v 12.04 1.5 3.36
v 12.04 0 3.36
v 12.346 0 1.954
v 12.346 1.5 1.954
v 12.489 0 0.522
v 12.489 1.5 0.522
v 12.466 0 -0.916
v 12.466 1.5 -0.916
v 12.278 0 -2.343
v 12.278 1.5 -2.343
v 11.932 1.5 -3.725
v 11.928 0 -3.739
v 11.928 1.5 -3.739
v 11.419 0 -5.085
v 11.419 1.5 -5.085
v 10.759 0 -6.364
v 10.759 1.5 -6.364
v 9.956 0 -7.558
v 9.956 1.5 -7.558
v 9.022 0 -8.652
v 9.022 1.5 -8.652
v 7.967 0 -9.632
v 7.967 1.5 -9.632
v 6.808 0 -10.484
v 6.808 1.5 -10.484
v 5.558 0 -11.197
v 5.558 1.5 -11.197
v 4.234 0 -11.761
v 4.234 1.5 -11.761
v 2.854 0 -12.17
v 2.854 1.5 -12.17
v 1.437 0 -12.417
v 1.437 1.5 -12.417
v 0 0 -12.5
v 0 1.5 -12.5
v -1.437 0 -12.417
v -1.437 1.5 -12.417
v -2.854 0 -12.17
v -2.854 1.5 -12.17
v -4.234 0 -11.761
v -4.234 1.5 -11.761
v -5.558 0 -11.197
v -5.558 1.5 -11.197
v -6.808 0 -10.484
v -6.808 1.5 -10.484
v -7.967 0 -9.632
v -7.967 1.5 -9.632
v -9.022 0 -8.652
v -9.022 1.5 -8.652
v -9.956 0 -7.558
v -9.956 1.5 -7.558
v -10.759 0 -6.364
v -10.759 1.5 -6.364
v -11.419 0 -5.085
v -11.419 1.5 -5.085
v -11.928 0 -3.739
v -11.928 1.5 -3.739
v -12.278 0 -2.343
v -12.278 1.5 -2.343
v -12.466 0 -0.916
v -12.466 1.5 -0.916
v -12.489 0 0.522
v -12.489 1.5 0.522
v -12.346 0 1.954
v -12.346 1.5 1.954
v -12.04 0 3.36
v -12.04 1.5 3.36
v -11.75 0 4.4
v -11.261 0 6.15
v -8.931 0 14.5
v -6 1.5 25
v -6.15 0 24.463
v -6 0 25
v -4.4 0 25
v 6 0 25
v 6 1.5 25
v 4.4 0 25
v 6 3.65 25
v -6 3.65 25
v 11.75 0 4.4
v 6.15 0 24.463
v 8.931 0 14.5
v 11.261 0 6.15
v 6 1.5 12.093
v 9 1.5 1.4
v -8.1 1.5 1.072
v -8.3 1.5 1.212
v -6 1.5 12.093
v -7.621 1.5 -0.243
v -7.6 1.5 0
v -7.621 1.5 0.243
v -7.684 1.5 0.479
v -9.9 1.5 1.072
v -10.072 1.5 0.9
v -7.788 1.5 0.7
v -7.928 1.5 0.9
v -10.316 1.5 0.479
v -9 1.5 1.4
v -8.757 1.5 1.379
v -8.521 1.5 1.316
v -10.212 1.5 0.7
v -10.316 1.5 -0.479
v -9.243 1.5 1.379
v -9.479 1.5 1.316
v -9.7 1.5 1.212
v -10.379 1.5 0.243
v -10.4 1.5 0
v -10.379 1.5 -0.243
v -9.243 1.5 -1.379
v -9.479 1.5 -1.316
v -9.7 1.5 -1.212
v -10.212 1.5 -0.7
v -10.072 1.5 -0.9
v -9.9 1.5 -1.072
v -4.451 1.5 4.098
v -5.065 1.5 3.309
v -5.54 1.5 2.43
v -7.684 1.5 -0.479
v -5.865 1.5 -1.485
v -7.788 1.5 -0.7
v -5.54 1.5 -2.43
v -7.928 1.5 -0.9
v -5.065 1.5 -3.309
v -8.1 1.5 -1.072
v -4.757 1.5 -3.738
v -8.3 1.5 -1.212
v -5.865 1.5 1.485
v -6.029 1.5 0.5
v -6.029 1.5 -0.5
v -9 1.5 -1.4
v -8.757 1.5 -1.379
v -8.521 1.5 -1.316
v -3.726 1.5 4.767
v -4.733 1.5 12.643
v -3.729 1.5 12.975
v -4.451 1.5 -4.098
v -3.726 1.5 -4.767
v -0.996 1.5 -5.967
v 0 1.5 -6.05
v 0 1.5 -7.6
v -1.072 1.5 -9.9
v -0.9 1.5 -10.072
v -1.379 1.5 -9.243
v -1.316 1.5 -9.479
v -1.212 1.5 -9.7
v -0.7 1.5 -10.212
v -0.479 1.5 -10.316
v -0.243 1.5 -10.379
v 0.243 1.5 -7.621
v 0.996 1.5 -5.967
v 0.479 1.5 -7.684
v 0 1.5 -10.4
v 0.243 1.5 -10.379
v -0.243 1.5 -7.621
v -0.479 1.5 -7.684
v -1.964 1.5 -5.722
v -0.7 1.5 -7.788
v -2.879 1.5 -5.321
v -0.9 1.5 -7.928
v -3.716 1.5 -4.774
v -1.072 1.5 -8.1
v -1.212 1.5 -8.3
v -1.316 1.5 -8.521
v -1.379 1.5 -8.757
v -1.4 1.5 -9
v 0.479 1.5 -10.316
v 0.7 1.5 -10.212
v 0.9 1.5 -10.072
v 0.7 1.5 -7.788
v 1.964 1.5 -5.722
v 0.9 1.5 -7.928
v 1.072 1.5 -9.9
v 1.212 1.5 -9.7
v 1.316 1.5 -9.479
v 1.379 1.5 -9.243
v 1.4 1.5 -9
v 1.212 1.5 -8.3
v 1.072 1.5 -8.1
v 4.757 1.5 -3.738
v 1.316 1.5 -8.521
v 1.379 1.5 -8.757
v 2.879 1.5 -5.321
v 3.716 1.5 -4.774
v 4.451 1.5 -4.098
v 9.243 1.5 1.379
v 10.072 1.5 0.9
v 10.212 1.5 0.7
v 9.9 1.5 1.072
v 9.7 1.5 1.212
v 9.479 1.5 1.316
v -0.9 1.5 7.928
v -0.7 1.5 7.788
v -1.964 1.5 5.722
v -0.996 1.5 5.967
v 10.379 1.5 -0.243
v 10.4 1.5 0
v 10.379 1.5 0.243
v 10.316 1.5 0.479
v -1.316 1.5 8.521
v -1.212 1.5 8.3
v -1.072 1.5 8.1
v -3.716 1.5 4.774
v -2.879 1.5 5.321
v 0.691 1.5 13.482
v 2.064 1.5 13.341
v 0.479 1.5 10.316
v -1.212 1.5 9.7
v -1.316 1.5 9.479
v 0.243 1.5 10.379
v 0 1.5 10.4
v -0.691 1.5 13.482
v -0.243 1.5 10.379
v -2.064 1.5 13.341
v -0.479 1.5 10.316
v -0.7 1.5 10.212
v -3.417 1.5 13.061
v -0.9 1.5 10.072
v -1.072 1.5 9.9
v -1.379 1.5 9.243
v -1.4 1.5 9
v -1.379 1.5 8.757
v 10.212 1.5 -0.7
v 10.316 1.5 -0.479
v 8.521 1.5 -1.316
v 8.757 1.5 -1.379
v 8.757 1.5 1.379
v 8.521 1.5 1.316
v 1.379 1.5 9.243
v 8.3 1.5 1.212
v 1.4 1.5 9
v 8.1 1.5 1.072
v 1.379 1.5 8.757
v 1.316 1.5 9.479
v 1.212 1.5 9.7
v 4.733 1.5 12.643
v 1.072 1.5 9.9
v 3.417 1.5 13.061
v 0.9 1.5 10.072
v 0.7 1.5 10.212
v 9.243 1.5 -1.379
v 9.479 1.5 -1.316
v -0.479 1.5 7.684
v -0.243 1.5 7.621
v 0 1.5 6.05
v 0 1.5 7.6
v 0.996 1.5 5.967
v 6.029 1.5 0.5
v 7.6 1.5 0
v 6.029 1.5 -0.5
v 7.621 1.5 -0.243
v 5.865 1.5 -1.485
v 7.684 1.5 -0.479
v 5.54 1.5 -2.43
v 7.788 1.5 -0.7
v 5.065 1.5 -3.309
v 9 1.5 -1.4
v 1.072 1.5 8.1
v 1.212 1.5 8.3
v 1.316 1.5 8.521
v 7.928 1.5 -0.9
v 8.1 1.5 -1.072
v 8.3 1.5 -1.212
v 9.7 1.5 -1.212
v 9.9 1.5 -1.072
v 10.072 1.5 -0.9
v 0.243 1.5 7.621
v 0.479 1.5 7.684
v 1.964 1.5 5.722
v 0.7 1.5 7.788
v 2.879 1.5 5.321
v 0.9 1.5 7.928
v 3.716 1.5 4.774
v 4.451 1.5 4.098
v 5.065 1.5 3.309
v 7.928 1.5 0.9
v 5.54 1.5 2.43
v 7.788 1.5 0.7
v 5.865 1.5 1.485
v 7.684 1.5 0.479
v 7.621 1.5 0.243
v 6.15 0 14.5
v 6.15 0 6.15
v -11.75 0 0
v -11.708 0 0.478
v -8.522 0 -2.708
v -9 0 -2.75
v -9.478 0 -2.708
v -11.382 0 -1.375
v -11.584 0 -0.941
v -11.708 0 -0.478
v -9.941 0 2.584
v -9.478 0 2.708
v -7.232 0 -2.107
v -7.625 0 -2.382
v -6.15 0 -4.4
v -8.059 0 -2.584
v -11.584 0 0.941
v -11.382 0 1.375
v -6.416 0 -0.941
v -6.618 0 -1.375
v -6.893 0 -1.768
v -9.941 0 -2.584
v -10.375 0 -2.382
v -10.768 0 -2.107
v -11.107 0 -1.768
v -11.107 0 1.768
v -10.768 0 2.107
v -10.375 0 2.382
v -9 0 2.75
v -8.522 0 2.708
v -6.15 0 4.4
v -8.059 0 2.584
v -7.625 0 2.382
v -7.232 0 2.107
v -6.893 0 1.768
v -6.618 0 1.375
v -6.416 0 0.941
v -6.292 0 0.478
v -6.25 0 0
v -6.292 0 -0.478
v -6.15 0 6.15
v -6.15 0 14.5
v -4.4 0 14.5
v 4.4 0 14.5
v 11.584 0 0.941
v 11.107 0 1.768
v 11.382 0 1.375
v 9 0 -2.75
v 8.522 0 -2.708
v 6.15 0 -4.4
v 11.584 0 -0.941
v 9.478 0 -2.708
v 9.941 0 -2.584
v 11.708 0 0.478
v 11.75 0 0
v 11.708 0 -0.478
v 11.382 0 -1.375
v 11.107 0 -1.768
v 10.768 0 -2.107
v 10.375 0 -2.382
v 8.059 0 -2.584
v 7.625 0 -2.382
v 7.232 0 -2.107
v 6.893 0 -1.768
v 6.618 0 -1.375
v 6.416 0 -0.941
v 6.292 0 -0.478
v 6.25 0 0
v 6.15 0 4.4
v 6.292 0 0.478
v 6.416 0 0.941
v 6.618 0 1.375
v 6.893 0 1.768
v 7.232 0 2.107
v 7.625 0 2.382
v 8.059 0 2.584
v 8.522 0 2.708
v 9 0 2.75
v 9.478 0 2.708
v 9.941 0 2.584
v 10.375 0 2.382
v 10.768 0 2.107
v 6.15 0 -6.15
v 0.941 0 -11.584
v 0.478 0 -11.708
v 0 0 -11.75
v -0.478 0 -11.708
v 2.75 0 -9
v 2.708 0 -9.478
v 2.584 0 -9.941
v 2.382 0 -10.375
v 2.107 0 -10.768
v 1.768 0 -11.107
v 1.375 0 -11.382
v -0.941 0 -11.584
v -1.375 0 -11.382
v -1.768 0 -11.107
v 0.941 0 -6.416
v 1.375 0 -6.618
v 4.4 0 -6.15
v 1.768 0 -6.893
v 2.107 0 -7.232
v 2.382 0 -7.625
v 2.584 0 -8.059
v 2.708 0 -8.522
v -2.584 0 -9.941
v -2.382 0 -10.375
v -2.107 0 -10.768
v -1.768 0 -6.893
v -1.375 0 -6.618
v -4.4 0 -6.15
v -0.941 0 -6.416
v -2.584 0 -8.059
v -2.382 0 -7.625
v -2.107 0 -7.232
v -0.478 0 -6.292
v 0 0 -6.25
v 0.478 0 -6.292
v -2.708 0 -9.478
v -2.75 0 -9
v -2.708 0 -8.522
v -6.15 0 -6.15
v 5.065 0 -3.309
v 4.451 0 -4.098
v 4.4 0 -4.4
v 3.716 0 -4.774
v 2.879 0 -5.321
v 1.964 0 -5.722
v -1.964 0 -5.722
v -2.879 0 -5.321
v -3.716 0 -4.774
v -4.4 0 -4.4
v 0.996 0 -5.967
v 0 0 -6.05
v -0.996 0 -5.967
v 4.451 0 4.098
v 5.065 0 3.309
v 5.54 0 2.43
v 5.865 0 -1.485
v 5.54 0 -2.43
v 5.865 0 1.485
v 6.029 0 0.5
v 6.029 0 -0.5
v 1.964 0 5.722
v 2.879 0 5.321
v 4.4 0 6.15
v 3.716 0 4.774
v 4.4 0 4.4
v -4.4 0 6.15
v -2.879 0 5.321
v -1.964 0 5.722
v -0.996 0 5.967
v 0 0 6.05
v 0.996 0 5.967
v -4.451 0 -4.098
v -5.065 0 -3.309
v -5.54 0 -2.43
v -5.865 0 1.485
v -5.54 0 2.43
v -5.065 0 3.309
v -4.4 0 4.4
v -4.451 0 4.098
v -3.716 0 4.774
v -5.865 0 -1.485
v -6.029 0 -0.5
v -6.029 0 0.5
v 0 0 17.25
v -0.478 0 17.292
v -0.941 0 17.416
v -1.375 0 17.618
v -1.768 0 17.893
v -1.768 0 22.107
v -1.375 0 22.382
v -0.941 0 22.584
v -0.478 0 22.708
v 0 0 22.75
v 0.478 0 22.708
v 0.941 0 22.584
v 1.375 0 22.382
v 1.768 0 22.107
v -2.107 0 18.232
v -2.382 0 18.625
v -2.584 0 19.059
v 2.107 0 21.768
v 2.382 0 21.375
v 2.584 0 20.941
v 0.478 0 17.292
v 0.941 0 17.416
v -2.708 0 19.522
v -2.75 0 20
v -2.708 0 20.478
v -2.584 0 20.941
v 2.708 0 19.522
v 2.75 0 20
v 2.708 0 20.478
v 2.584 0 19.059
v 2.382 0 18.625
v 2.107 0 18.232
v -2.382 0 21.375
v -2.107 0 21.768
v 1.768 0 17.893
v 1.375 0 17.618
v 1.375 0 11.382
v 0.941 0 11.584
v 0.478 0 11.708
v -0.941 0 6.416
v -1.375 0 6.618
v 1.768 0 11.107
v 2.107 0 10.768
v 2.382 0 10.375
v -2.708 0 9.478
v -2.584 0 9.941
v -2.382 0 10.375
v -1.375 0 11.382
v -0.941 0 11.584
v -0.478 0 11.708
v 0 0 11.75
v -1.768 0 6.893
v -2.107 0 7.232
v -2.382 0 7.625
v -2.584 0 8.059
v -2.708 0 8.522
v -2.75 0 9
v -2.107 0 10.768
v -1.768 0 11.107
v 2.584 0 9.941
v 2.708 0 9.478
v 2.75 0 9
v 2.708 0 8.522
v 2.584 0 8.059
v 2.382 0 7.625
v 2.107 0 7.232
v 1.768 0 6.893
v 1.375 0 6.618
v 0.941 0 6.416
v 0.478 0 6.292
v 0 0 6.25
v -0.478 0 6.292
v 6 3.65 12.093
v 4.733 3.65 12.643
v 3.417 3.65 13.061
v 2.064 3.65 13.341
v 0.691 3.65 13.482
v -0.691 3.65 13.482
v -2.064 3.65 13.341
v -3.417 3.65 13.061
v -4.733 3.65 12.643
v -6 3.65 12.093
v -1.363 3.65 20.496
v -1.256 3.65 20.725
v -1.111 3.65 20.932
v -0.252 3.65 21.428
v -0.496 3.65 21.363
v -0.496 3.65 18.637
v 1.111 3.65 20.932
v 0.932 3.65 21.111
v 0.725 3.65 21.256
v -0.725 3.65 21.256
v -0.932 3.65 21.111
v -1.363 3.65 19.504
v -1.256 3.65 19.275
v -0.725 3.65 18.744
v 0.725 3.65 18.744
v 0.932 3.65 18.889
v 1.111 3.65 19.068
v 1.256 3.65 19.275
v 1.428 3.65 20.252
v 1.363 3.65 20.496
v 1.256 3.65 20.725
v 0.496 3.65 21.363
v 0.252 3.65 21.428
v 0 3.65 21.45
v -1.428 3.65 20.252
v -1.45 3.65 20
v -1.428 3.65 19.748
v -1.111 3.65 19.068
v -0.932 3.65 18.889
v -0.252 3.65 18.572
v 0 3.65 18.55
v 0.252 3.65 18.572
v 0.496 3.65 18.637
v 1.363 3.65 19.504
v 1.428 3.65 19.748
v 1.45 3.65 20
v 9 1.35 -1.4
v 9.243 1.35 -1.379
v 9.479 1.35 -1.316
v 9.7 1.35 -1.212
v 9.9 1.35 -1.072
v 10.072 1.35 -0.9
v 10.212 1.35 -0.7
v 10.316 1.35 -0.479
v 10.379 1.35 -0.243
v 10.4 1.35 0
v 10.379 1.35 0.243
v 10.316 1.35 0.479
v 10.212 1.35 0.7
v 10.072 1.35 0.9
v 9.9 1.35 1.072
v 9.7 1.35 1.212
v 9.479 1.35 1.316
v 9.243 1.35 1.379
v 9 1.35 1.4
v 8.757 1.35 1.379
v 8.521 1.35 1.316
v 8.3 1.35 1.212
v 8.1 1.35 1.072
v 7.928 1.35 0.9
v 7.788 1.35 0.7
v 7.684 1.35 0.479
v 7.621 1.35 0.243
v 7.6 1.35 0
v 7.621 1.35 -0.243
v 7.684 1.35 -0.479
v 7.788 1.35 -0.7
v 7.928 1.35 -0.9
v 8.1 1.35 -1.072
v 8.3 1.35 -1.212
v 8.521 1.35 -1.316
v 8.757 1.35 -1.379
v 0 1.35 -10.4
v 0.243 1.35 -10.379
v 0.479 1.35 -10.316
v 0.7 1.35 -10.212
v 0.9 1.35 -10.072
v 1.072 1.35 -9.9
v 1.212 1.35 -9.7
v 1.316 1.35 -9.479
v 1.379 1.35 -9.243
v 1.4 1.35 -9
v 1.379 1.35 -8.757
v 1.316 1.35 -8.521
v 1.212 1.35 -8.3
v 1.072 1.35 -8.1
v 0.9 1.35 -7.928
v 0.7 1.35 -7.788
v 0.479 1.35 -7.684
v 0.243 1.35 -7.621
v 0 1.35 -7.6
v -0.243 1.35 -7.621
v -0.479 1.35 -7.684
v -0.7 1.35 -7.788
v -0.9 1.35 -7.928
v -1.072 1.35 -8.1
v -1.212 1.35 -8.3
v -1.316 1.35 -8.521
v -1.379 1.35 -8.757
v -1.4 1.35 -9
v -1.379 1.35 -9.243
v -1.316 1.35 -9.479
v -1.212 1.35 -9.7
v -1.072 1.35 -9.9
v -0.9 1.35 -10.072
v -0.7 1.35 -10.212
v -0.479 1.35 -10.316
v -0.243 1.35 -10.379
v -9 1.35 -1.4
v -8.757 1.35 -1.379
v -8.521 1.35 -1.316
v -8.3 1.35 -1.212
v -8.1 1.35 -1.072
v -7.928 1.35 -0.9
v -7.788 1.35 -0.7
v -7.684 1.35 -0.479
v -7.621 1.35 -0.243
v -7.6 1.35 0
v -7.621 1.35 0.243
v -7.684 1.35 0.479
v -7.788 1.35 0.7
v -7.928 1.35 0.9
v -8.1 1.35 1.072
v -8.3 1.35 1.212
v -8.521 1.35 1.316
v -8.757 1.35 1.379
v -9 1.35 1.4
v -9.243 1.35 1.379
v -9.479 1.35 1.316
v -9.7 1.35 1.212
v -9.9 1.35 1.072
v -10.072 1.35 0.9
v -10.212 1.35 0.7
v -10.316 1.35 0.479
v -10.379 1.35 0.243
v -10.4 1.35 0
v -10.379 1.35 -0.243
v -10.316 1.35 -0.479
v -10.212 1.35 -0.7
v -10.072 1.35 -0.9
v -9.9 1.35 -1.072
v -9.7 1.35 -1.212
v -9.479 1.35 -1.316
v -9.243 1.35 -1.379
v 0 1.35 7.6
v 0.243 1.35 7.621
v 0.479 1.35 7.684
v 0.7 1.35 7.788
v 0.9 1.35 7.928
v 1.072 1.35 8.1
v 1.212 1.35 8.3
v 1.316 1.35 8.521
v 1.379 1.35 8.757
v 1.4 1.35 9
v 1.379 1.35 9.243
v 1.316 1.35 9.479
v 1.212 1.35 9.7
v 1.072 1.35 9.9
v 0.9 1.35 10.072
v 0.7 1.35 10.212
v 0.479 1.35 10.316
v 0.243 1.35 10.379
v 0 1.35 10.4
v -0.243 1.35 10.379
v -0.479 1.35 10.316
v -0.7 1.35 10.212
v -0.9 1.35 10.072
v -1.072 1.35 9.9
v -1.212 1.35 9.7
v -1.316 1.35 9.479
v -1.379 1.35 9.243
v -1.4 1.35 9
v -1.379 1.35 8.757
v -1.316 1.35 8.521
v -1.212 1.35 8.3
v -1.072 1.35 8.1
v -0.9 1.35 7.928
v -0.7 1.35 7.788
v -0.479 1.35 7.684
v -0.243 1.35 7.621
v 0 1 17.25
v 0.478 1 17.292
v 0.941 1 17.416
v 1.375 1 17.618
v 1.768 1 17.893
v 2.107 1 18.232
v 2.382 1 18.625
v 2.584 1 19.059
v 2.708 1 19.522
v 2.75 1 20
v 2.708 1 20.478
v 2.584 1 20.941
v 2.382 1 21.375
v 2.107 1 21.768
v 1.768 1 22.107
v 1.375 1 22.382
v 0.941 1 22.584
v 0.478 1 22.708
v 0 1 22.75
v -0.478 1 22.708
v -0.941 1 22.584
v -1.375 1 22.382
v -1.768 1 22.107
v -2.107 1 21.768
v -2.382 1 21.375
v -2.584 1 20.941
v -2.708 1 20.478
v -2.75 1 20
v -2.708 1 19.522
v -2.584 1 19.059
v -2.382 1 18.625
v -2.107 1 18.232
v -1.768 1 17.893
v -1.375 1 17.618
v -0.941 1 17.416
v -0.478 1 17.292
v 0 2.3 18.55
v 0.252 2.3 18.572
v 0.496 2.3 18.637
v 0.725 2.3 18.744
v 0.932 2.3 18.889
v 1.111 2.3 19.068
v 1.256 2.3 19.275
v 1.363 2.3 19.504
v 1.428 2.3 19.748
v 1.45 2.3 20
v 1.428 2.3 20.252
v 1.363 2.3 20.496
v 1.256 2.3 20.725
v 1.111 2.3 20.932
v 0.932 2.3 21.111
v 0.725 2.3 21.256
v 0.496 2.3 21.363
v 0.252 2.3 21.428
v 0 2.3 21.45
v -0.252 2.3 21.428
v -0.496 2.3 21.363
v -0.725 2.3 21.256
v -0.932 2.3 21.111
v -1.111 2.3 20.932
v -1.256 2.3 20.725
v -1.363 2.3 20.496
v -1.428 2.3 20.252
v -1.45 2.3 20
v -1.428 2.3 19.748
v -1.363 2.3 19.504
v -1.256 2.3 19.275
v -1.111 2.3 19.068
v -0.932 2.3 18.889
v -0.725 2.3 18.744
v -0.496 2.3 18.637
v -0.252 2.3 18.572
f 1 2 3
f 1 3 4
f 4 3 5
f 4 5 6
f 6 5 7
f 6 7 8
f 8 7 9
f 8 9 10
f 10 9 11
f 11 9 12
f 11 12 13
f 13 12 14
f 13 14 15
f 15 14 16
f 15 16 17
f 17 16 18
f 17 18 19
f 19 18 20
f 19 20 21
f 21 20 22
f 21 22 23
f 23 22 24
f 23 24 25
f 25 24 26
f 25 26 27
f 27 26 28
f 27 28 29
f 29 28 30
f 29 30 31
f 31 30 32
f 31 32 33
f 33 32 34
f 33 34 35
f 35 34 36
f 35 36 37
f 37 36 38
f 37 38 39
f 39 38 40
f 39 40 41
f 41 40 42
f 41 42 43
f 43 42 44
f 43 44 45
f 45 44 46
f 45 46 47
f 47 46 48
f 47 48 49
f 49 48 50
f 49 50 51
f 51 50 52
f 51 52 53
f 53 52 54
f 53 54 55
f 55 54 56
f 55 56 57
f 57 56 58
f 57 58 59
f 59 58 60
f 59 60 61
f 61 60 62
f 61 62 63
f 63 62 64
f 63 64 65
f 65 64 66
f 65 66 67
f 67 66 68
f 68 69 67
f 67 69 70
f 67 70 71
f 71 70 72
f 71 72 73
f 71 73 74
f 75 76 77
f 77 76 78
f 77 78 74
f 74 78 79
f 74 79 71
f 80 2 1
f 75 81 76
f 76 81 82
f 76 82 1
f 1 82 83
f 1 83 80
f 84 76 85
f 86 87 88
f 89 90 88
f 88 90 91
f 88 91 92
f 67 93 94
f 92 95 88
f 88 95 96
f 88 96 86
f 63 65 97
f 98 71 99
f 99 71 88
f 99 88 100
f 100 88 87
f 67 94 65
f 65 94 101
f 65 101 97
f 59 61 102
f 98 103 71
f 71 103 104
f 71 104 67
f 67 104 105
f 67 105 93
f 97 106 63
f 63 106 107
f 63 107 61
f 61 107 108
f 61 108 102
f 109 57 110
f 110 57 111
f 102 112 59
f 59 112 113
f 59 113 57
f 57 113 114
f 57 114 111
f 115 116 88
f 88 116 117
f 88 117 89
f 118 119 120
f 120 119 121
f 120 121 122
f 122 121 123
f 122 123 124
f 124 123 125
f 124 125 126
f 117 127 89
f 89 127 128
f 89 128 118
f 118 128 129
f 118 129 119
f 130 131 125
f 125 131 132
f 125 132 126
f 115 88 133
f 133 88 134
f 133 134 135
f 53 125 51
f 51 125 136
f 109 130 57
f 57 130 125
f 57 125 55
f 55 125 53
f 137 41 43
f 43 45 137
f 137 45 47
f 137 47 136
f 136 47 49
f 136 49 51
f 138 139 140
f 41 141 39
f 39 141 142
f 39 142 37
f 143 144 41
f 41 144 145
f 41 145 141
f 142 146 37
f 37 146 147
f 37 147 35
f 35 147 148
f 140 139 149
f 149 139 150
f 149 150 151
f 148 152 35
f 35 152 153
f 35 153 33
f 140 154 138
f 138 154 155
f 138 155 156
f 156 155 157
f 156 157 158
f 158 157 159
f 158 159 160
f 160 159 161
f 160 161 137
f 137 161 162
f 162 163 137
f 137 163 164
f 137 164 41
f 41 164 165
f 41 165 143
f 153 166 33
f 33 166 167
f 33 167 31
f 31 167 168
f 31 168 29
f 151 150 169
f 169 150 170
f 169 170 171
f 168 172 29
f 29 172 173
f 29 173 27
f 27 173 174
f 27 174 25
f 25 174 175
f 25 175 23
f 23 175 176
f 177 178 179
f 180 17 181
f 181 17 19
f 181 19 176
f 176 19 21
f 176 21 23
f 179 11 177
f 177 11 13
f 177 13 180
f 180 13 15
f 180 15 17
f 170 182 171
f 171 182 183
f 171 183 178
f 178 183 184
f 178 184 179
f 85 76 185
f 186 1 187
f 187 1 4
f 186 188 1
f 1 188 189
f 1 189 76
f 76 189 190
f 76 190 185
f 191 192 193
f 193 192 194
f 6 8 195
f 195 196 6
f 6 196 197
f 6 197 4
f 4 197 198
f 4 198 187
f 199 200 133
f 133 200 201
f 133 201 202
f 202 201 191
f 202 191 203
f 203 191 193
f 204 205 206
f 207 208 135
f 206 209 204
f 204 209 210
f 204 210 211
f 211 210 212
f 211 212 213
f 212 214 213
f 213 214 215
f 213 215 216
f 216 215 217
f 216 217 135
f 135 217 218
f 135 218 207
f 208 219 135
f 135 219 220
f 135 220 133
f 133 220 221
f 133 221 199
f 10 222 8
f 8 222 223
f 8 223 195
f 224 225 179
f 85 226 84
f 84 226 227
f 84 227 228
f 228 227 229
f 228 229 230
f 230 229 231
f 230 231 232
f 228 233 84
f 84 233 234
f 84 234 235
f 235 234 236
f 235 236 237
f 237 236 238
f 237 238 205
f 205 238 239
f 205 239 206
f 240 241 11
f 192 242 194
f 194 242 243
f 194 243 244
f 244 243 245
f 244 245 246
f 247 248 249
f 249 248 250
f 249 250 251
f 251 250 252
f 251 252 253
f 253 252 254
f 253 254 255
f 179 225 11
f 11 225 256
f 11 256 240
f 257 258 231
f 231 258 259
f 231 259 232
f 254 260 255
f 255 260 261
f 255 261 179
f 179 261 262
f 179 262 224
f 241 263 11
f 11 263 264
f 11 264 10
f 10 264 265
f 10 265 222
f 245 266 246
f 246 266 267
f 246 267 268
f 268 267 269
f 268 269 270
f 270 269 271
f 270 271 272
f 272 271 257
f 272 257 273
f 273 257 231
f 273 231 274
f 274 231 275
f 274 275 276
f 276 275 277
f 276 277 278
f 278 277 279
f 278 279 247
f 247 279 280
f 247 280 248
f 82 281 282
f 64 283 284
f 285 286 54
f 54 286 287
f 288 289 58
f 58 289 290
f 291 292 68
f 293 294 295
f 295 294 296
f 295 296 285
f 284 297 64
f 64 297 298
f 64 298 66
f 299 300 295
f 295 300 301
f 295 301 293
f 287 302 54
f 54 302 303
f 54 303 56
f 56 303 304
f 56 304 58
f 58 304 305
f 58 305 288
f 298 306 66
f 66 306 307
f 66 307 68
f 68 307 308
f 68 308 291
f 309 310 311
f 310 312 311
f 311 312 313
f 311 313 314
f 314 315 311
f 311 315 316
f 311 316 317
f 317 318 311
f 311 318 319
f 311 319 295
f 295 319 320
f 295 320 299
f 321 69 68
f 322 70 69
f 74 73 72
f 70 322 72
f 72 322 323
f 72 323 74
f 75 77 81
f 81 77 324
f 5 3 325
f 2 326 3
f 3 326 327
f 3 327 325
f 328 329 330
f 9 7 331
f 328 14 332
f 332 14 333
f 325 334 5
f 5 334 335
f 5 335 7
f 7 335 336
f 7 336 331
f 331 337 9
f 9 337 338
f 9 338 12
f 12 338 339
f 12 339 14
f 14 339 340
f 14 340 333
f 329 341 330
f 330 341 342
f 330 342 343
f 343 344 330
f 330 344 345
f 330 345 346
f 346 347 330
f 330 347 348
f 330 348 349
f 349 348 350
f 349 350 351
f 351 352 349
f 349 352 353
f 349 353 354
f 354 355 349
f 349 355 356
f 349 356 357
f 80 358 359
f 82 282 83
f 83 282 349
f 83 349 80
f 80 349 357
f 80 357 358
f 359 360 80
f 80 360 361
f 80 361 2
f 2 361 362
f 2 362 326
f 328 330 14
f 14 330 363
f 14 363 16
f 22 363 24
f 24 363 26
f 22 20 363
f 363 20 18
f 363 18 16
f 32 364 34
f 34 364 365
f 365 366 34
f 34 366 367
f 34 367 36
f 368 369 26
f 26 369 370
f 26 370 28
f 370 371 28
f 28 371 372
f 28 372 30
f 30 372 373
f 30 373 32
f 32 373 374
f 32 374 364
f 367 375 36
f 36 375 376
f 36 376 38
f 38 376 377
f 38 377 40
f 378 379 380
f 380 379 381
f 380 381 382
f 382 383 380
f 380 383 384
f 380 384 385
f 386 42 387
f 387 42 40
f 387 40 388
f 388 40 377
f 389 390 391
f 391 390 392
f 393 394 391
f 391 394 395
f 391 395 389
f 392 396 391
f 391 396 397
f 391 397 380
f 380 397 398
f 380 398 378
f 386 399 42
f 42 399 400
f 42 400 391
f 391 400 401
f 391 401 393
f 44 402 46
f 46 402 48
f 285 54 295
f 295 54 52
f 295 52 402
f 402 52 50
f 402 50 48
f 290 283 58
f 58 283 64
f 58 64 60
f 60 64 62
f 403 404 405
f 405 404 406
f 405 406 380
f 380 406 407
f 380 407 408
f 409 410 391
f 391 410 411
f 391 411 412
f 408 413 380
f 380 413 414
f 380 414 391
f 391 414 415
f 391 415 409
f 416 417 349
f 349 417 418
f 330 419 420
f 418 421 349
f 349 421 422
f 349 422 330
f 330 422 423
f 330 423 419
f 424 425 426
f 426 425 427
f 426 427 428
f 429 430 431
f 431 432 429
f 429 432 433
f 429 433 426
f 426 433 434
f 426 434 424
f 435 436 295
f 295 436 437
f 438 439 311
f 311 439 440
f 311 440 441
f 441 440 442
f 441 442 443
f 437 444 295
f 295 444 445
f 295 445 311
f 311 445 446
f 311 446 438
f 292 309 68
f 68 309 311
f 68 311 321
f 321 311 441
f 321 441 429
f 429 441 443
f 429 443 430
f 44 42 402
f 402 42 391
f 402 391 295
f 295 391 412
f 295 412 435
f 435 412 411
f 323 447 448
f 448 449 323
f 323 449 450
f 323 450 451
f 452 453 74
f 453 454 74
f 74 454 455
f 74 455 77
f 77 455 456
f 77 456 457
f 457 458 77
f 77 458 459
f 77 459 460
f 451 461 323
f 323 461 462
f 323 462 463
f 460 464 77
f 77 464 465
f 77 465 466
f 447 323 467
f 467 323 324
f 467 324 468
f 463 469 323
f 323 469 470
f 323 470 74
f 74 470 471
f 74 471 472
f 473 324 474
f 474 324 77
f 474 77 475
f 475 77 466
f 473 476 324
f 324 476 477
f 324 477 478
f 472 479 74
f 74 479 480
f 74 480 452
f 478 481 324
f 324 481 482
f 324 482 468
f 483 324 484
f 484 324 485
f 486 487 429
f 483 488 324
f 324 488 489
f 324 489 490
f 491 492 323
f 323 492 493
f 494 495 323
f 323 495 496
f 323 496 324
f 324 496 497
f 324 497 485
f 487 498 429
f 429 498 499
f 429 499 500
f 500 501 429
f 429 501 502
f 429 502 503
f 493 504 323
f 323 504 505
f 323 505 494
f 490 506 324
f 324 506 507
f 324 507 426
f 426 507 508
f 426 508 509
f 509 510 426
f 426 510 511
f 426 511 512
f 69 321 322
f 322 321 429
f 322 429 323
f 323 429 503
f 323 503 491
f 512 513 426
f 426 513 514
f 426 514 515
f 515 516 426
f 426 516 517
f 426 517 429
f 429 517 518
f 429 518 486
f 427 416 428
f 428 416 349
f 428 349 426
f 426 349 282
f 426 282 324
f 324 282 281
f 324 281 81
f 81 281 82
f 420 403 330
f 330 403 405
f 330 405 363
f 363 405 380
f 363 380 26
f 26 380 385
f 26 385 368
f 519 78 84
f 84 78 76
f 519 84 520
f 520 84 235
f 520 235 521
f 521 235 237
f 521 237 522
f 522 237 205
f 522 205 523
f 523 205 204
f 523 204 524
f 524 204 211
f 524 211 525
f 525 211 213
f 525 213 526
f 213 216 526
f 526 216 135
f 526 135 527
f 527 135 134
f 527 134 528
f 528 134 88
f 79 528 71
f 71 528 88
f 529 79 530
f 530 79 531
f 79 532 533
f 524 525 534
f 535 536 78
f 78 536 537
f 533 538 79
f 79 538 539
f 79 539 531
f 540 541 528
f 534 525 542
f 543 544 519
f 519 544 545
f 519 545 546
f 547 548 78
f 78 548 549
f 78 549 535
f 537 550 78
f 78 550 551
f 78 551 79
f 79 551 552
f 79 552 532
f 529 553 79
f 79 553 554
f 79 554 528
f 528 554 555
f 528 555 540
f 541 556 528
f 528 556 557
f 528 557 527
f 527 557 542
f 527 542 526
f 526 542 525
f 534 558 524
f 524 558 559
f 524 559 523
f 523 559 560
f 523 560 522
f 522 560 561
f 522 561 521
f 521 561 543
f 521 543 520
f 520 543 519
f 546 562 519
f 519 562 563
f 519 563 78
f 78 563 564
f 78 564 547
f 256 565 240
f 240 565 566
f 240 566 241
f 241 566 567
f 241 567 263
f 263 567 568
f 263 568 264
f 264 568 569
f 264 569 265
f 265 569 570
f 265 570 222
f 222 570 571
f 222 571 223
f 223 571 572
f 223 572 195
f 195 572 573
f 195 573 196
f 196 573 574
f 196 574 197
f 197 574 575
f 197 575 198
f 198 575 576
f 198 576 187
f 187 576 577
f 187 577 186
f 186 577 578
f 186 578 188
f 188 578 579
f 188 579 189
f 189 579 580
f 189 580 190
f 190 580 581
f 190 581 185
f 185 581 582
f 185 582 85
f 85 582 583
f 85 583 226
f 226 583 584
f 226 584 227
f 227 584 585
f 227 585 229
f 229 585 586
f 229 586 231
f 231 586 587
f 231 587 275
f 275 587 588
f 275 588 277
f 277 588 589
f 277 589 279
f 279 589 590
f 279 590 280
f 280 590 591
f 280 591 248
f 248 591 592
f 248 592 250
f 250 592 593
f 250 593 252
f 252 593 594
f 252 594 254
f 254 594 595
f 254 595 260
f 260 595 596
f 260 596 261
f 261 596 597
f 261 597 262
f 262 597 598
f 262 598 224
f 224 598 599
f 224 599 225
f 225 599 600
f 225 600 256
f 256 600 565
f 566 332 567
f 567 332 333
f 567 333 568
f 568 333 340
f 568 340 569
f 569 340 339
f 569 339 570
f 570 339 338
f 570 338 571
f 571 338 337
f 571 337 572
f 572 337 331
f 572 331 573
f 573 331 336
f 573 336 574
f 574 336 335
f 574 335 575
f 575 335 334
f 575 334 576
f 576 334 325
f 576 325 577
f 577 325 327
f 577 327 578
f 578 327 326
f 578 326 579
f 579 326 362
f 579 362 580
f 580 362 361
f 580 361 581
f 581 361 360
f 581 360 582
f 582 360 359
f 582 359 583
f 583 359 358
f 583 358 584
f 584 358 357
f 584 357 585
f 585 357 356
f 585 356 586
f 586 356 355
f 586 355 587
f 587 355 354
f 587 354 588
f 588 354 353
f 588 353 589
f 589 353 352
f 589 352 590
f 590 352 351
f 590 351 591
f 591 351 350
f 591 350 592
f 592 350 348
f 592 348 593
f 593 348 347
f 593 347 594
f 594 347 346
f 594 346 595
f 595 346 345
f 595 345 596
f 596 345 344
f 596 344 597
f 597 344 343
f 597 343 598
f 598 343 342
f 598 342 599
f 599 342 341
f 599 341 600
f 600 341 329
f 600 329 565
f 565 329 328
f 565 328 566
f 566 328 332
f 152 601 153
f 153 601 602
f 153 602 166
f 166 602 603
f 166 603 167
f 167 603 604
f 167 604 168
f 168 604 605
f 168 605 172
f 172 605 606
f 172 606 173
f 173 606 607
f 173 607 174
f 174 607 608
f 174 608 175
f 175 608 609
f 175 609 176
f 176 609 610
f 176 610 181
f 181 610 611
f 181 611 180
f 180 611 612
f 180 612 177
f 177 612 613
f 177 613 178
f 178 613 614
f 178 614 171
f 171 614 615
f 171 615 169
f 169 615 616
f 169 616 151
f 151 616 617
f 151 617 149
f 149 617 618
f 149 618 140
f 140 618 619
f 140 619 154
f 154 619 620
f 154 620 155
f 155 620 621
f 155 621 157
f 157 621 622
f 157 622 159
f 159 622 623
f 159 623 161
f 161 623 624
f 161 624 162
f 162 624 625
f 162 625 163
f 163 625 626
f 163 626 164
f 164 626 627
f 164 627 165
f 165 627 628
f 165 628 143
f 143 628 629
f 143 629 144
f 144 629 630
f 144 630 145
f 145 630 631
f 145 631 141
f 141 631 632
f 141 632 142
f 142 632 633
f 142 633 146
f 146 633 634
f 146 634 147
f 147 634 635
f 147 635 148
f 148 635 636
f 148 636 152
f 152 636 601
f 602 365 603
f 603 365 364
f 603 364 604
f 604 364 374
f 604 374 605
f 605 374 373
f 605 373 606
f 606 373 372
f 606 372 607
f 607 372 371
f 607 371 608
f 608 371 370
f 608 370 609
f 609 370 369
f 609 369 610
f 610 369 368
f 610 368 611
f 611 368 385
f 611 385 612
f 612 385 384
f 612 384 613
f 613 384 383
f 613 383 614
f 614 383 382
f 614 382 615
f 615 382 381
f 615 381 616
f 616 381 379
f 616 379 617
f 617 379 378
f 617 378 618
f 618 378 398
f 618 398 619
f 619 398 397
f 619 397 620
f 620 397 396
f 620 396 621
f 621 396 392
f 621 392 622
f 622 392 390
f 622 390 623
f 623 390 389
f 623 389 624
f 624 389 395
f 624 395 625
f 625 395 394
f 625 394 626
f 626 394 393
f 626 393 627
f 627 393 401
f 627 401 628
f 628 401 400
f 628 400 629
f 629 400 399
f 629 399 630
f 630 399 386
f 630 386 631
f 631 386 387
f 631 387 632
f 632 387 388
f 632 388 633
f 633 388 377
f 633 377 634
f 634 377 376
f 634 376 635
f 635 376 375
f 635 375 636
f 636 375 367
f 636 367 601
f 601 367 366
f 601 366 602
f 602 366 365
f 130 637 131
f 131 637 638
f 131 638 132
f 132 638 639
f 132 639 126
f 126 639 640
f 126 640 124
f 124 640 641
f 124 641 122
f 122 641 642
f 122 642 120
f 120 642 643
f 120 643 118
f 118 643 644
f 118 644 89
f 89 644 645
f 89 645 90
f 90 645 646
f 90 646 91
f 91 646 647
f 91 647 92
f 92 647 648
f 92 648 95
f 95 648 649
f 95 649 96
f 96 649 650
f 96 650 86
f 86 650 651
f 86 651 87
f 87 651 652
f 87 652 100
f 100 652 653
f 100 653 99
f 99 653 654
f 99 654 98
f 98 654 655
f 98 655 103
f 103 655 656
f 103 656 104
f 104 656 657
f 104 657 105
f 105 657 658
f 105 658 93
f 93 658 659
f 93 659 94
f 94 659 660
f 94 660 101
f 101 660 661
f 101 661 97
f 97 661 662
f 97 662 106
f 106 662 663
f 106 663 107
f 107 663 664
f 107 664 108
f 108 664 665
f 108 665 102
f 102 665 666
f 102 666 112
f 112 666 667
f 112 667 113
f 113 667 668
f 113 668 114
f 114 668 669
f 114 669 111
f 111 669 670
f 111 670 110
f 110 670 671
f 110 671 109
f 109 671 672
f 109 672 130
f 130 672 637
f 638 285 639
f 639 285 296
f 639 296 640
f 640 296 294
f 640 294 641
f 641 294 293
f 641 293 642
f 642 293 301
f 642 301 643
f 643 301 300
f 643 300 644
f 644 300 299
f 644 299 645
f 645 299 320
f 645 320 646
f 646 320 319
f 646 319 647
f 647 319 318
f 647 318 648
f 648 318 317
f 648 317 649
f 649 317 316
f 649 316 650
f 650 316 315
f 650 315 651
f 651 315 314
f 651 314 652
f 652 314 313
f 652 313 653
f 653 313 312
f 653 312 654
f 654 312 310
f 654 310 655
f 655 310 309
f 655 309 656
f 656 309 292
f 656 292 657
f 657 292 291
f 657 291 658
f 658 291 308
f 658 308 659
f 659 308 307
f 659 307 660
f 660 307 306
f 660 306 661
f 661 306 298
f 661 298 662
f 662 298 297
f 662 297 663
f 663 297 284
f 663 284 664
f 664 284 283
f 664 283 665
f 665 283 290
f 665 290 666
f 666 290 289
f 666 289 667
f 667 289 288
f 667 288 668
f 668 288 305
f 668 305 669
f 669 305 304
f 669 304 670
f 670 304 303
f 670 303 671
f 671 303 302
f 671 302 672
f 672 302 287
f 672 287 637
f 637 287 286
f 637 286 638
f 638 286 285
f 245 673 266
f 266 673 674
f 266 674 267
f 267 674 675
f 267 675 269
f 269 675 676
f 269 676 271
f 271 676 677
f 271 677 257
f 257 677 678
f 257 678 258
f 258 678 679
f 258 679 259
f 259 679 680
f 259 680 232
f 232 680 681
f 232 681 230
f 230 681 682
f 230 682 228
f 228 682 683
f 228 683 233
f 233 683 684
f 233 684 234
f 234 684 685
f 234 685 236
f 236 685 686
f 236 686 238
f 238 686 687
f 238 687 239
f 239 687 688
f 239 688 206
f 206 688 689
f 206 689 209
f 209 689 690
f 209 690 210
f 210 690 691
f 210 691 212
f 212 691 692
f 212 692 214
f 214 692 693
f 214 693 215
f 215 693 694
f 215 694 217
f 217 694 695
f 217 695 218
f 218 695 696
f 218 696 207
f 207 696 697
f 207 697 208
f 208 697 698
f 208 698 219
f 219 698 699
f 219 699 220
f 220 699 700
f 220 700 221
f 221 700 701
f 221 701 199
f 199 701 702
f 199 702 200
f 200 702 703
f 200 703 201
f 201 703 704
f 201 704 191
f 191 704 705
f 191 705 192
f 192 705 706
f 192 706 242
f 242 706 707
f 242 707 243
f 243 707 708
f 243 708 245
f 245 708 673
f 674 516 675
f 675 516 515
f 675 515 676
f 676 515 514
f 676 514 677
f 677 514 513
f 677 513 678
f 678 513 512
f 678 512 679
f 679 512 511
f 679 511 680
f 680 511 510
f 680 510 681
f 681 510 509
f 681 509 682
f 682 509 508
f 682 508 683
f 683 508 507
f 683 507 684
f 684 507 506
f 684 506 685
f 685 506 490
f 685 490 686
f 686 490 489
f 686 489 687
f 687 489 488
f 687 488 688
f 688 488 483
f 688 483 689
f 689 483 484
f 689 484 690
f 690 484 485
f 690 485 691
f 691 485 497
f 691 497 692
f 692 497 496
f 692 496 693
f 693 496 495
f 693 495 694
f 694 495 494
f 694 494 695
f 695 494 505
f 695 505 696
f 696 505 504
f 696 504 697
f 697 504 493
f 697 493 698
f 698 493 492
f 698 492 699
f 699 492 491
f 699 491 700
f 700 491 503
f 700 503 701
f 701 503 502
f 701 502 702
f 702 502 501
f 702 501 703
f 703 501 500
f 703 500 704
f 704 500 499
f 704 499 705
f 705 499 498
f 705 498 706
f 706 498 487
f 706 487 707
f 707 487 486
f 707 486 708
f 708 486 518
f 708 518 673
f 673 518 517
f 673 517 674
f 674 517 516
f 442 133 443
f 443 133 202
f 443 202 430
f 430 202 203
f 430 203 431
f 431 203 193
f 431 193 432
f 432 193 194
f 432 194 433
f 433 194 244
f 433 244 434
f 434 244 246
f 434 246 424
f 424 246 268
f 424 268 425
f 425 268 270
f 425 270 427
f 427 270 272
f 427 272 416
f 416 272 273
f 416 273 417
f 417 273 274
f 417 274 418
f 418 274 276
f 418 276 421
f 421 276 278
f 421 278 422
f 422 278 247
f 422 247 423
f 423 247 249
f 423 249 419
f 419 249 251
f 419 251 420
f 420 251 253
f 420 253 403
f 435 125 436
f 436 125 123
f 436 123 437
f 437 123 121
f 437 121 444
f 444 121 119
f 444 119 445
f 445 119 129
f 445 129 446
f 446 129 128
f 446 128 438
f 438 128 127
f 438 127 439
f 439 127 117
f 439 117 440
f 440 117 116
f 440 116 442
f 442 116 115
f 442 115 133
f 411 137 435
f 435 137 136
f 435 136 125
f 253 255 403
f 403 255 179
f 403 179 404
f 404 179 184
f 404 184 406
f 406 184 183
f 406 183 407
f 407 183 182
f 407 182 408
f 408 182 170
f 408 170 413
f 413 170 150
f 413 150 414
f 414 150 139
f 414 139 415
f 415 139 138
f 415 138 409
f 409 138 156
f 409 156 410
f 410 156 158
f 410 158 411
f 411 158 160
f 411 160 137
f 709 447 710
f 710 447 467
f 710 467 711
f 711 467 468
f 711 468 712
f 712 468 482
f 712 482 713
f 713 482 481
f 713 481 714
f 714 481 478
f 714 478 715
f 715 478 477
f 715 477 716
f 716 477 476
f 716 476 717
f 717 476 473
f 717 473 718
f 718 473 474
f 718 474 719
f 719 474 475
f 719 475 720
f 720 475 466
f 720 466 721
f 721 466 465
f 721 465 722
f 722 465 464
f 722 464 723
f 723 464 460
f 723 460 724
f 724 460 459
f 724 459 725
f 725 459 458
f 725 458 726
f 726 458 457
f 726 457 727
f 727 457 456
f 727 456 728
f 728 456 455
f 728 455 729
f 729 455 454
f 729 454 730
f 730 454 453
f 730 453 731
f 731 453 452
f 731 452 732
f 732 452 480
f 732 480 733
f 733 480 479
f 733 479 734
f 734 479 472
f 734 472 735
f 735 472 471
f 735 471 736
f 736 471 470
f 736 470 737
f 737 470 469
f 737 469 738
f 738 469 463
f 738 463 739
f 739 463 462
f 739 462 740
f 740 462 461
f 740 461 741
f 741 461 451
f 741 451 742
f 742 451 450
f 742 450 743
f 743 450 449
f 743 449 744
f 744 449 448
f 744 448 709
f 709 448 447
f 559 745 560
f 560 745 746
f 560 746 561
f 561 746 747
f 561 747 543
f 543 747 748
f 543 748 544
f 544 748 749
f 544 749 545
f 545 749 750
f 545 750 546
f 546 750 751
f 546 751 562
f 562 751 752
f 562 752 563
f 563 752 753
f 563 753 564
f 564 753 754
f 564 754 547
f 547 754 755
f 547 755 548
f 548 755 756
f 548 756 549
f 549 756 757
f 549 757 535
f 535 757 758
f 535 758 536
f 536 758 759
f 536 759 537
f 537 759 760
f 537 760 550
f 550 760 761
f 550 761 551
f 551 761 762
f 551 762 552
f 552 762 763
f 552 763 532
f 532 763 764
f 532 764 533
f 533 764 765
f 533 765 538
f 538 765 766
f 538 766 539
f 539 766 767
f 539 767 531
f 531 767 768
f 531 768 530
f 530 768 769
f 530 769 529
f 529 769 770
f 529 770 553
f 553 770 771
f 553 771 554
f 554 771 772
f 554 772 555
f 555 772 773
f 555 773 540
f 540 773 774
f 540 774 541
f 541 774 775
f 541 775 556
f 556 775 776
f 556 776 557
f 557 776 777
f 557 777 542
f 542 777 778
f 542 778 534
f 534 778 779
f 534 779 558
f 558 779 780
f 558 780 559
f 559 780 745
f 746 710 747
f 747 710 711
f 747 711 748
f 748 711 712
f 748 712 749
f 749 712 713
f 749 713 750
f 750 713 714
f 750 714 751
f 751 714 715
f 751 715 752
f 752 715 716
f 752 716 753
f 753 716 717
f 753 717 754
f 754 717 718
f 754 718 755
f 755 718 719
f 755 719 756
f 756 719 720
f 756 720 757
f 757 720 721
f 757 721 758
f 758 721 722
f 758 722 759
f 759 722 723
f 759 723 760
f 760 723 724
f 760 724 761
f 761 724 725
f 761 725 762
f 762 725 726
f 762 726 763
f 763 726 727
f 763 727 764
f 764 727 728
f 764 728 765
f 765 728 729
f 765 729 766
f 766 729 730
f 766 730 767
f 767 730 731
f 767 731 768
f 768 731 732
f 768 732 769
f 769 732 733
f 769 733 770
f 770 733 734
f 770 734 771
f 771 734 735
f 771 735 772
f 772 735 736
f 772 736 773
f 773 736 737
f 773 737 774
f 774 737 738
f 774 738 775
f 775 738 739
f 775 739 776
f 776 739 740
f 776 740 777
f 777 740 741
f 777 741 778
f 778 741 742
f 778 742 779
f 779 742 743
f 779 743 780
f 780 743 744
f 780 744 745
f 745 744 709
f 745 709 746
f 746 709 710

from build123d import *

# Parameters (mm, degrees)
BOSS_EXTRUDE1_DEPTH                               = 1.5
BOSS_EXTRUDE2_DEPTH                               = 2.15
CSK_FOR_M2_5_FLAT_HEAD_MACHINE_SCREW1_D           = 2.8
CSK_FOR_M2_5_FLAT_HEAD_MACHINE_SCREW1_CSINK_D     = 5.5
CSK_FOR_M2_5_FLAT_HEAD_MACHINE_SCREW1_CSINK_ANGLE = 90
SKETCH6_R                                         = 6.05
CUT_EXTRUDE1_DEPTH                                = 4.65
SKETCH7_R                                         = 2.75
CUT_EXTRUDE2_DEPTH                                = 1
CSK_FOR_M2_5_FLAT_HEAD_MACHINE_SCREW2_D           = 2.9
CSK_FOR_M2_5_FLAT_HEAD_MACHINE_SCREW2_DEPTH       = 8
CSK_FOR_M2_5_FLAT_HEAD_MACHINE_SCREW2_CSINK_D     = 5.5
CSK_FOR_M2_5_FLAT_HEAD_MACHINE_SCREW2_CSINK_ANGLE = 90
CSK_FOR_M2_5_FLAT_HEAD_MACHINE_SCREW2_TIP         = 0.871247898


with BuildPart() as part:
    # Sketch1 → Boss-Extrude1 (new body)
    with BuildSketch(Plane(origin=(0, 0, 0), x_dir=(1, 0, 0), z_dir=(0, 1, 0))):
        with BuildLine():
            Line((-12.039826938, -3.360441535), (-6, -25))
            Line((-6, -25), (6, -25))
            Line((6, -25), (12.039826938, -3.360441535))
            ThreePointArc((12.039826938, -3.360441535), (0, 12.5), (-12.039826938, -3.360441535))
        make_face()
    extrude(amount=BOSS_EXTRUDE1_DEPTH)

    # Sketch2 → Boss-Extrude2 (add)
    with BuildSketch(Plane(origin=(0, 1.5, 0), x_dir=(1, 0, 0), z_dir=(0, 1, 0))):
        with BuildLine():
            Line((-6, -25), (-6, -12.093386622))
            ThreePointArc((-6, -12.093386622), (0, -13.5), (6, -12.093386622))
            Line((6, -12.093386622), (6, -25))
            Line((6, -25), (-6, -25))
        make_face()
    extrude(amount=BOSS_EXTRUDE2_DEPTH)

    # CSK for M2.5 Flat Head Machine Screw1 (through all)
    with Locations(Plane(origin=(0, 0, 0), x_dir=(-1, 0, 0), z_dir=(0, -1, 0))):
        with Locations((0, -9), (9, 0), (0, 9), (-9, 0)):
            CounterSinkHole(CSK_FOR_M2_5_FLAT_HEAD_MACHINE_SCREW1_D / 2, CSK_FOR_M2_5_FLAT_HEAD_MACHINE_SCREW1_CSINK_D / 2, counter_sink_angle=CSK_FOR_M2_5_FLAT_HEAD_MACHINE_SCREW1_CSINK_ANGLE)

    # Sketch6 → Cut-Extrude1 (cut, through all)
    with BuildSketch(Plane.XZ):
        Circle(SKETCH6_R)
    extrude(amount=-CUT_EXTRUDE1_DEPTH, mode=Mode.SUBTRACT)

    # Sketch7 → Cut-Extrude2 (cut)
    with BuildSketch(Plane(origin=(0, 0, 0), x_dir=(-1, 0, 0), z_dir=(0, -1, 0))):
        with Locations((0, -20)):
            Circle(SKETCH7_R)
    extrude(amount=-CUT_EXTRUDE2_DEPTH, mode=Mode.SUBTRACT)

    # CSK for M2.5 Flat Head Machine Screw2
    with Locations(Plane(origin=(0, 1, 0), x_dir=(-1, 0, 0), z_dir=(0, -1, 0))):
        with Locations((0, -20)):
            CounterSinkHole(CSK_FOR_M2_5_FLAT_HEAD_MACHINE_SCREW2_D / 2, CSK_FOR_M2_5_FLAT_HEAD_MACHINE_SCREW2_CSINK_D / 2, depth=CSK_FOR_M2_5_FLAT_HEAD_MACHINE_SCREW2_DEPTH, counter_sink_angle=CSK_FOR_M2_5_FLAT_HEAD_MACHINE_SCREW2_CSINK_ANGLE)
            with Locations((0, 0, -(CSK_FOR_M2_5_FLAT_HEAD_MACHINE_SCREW2_DEPTH + CSK_FOR_M2_5_FLAT_HEAD_MACHINE_SCREW2_TIP / 2))):  # 118° drill point
                Cone(0, CSK_FOR_M2_5_FLAT_HEAD_MACHINE_SCREW2_D / 2, CSK_FOR_M2_5_FLAT_HEAD_MACHINE_SCREW2_TIP, mode=Mode.SUBTRACT)


solid = part.part
